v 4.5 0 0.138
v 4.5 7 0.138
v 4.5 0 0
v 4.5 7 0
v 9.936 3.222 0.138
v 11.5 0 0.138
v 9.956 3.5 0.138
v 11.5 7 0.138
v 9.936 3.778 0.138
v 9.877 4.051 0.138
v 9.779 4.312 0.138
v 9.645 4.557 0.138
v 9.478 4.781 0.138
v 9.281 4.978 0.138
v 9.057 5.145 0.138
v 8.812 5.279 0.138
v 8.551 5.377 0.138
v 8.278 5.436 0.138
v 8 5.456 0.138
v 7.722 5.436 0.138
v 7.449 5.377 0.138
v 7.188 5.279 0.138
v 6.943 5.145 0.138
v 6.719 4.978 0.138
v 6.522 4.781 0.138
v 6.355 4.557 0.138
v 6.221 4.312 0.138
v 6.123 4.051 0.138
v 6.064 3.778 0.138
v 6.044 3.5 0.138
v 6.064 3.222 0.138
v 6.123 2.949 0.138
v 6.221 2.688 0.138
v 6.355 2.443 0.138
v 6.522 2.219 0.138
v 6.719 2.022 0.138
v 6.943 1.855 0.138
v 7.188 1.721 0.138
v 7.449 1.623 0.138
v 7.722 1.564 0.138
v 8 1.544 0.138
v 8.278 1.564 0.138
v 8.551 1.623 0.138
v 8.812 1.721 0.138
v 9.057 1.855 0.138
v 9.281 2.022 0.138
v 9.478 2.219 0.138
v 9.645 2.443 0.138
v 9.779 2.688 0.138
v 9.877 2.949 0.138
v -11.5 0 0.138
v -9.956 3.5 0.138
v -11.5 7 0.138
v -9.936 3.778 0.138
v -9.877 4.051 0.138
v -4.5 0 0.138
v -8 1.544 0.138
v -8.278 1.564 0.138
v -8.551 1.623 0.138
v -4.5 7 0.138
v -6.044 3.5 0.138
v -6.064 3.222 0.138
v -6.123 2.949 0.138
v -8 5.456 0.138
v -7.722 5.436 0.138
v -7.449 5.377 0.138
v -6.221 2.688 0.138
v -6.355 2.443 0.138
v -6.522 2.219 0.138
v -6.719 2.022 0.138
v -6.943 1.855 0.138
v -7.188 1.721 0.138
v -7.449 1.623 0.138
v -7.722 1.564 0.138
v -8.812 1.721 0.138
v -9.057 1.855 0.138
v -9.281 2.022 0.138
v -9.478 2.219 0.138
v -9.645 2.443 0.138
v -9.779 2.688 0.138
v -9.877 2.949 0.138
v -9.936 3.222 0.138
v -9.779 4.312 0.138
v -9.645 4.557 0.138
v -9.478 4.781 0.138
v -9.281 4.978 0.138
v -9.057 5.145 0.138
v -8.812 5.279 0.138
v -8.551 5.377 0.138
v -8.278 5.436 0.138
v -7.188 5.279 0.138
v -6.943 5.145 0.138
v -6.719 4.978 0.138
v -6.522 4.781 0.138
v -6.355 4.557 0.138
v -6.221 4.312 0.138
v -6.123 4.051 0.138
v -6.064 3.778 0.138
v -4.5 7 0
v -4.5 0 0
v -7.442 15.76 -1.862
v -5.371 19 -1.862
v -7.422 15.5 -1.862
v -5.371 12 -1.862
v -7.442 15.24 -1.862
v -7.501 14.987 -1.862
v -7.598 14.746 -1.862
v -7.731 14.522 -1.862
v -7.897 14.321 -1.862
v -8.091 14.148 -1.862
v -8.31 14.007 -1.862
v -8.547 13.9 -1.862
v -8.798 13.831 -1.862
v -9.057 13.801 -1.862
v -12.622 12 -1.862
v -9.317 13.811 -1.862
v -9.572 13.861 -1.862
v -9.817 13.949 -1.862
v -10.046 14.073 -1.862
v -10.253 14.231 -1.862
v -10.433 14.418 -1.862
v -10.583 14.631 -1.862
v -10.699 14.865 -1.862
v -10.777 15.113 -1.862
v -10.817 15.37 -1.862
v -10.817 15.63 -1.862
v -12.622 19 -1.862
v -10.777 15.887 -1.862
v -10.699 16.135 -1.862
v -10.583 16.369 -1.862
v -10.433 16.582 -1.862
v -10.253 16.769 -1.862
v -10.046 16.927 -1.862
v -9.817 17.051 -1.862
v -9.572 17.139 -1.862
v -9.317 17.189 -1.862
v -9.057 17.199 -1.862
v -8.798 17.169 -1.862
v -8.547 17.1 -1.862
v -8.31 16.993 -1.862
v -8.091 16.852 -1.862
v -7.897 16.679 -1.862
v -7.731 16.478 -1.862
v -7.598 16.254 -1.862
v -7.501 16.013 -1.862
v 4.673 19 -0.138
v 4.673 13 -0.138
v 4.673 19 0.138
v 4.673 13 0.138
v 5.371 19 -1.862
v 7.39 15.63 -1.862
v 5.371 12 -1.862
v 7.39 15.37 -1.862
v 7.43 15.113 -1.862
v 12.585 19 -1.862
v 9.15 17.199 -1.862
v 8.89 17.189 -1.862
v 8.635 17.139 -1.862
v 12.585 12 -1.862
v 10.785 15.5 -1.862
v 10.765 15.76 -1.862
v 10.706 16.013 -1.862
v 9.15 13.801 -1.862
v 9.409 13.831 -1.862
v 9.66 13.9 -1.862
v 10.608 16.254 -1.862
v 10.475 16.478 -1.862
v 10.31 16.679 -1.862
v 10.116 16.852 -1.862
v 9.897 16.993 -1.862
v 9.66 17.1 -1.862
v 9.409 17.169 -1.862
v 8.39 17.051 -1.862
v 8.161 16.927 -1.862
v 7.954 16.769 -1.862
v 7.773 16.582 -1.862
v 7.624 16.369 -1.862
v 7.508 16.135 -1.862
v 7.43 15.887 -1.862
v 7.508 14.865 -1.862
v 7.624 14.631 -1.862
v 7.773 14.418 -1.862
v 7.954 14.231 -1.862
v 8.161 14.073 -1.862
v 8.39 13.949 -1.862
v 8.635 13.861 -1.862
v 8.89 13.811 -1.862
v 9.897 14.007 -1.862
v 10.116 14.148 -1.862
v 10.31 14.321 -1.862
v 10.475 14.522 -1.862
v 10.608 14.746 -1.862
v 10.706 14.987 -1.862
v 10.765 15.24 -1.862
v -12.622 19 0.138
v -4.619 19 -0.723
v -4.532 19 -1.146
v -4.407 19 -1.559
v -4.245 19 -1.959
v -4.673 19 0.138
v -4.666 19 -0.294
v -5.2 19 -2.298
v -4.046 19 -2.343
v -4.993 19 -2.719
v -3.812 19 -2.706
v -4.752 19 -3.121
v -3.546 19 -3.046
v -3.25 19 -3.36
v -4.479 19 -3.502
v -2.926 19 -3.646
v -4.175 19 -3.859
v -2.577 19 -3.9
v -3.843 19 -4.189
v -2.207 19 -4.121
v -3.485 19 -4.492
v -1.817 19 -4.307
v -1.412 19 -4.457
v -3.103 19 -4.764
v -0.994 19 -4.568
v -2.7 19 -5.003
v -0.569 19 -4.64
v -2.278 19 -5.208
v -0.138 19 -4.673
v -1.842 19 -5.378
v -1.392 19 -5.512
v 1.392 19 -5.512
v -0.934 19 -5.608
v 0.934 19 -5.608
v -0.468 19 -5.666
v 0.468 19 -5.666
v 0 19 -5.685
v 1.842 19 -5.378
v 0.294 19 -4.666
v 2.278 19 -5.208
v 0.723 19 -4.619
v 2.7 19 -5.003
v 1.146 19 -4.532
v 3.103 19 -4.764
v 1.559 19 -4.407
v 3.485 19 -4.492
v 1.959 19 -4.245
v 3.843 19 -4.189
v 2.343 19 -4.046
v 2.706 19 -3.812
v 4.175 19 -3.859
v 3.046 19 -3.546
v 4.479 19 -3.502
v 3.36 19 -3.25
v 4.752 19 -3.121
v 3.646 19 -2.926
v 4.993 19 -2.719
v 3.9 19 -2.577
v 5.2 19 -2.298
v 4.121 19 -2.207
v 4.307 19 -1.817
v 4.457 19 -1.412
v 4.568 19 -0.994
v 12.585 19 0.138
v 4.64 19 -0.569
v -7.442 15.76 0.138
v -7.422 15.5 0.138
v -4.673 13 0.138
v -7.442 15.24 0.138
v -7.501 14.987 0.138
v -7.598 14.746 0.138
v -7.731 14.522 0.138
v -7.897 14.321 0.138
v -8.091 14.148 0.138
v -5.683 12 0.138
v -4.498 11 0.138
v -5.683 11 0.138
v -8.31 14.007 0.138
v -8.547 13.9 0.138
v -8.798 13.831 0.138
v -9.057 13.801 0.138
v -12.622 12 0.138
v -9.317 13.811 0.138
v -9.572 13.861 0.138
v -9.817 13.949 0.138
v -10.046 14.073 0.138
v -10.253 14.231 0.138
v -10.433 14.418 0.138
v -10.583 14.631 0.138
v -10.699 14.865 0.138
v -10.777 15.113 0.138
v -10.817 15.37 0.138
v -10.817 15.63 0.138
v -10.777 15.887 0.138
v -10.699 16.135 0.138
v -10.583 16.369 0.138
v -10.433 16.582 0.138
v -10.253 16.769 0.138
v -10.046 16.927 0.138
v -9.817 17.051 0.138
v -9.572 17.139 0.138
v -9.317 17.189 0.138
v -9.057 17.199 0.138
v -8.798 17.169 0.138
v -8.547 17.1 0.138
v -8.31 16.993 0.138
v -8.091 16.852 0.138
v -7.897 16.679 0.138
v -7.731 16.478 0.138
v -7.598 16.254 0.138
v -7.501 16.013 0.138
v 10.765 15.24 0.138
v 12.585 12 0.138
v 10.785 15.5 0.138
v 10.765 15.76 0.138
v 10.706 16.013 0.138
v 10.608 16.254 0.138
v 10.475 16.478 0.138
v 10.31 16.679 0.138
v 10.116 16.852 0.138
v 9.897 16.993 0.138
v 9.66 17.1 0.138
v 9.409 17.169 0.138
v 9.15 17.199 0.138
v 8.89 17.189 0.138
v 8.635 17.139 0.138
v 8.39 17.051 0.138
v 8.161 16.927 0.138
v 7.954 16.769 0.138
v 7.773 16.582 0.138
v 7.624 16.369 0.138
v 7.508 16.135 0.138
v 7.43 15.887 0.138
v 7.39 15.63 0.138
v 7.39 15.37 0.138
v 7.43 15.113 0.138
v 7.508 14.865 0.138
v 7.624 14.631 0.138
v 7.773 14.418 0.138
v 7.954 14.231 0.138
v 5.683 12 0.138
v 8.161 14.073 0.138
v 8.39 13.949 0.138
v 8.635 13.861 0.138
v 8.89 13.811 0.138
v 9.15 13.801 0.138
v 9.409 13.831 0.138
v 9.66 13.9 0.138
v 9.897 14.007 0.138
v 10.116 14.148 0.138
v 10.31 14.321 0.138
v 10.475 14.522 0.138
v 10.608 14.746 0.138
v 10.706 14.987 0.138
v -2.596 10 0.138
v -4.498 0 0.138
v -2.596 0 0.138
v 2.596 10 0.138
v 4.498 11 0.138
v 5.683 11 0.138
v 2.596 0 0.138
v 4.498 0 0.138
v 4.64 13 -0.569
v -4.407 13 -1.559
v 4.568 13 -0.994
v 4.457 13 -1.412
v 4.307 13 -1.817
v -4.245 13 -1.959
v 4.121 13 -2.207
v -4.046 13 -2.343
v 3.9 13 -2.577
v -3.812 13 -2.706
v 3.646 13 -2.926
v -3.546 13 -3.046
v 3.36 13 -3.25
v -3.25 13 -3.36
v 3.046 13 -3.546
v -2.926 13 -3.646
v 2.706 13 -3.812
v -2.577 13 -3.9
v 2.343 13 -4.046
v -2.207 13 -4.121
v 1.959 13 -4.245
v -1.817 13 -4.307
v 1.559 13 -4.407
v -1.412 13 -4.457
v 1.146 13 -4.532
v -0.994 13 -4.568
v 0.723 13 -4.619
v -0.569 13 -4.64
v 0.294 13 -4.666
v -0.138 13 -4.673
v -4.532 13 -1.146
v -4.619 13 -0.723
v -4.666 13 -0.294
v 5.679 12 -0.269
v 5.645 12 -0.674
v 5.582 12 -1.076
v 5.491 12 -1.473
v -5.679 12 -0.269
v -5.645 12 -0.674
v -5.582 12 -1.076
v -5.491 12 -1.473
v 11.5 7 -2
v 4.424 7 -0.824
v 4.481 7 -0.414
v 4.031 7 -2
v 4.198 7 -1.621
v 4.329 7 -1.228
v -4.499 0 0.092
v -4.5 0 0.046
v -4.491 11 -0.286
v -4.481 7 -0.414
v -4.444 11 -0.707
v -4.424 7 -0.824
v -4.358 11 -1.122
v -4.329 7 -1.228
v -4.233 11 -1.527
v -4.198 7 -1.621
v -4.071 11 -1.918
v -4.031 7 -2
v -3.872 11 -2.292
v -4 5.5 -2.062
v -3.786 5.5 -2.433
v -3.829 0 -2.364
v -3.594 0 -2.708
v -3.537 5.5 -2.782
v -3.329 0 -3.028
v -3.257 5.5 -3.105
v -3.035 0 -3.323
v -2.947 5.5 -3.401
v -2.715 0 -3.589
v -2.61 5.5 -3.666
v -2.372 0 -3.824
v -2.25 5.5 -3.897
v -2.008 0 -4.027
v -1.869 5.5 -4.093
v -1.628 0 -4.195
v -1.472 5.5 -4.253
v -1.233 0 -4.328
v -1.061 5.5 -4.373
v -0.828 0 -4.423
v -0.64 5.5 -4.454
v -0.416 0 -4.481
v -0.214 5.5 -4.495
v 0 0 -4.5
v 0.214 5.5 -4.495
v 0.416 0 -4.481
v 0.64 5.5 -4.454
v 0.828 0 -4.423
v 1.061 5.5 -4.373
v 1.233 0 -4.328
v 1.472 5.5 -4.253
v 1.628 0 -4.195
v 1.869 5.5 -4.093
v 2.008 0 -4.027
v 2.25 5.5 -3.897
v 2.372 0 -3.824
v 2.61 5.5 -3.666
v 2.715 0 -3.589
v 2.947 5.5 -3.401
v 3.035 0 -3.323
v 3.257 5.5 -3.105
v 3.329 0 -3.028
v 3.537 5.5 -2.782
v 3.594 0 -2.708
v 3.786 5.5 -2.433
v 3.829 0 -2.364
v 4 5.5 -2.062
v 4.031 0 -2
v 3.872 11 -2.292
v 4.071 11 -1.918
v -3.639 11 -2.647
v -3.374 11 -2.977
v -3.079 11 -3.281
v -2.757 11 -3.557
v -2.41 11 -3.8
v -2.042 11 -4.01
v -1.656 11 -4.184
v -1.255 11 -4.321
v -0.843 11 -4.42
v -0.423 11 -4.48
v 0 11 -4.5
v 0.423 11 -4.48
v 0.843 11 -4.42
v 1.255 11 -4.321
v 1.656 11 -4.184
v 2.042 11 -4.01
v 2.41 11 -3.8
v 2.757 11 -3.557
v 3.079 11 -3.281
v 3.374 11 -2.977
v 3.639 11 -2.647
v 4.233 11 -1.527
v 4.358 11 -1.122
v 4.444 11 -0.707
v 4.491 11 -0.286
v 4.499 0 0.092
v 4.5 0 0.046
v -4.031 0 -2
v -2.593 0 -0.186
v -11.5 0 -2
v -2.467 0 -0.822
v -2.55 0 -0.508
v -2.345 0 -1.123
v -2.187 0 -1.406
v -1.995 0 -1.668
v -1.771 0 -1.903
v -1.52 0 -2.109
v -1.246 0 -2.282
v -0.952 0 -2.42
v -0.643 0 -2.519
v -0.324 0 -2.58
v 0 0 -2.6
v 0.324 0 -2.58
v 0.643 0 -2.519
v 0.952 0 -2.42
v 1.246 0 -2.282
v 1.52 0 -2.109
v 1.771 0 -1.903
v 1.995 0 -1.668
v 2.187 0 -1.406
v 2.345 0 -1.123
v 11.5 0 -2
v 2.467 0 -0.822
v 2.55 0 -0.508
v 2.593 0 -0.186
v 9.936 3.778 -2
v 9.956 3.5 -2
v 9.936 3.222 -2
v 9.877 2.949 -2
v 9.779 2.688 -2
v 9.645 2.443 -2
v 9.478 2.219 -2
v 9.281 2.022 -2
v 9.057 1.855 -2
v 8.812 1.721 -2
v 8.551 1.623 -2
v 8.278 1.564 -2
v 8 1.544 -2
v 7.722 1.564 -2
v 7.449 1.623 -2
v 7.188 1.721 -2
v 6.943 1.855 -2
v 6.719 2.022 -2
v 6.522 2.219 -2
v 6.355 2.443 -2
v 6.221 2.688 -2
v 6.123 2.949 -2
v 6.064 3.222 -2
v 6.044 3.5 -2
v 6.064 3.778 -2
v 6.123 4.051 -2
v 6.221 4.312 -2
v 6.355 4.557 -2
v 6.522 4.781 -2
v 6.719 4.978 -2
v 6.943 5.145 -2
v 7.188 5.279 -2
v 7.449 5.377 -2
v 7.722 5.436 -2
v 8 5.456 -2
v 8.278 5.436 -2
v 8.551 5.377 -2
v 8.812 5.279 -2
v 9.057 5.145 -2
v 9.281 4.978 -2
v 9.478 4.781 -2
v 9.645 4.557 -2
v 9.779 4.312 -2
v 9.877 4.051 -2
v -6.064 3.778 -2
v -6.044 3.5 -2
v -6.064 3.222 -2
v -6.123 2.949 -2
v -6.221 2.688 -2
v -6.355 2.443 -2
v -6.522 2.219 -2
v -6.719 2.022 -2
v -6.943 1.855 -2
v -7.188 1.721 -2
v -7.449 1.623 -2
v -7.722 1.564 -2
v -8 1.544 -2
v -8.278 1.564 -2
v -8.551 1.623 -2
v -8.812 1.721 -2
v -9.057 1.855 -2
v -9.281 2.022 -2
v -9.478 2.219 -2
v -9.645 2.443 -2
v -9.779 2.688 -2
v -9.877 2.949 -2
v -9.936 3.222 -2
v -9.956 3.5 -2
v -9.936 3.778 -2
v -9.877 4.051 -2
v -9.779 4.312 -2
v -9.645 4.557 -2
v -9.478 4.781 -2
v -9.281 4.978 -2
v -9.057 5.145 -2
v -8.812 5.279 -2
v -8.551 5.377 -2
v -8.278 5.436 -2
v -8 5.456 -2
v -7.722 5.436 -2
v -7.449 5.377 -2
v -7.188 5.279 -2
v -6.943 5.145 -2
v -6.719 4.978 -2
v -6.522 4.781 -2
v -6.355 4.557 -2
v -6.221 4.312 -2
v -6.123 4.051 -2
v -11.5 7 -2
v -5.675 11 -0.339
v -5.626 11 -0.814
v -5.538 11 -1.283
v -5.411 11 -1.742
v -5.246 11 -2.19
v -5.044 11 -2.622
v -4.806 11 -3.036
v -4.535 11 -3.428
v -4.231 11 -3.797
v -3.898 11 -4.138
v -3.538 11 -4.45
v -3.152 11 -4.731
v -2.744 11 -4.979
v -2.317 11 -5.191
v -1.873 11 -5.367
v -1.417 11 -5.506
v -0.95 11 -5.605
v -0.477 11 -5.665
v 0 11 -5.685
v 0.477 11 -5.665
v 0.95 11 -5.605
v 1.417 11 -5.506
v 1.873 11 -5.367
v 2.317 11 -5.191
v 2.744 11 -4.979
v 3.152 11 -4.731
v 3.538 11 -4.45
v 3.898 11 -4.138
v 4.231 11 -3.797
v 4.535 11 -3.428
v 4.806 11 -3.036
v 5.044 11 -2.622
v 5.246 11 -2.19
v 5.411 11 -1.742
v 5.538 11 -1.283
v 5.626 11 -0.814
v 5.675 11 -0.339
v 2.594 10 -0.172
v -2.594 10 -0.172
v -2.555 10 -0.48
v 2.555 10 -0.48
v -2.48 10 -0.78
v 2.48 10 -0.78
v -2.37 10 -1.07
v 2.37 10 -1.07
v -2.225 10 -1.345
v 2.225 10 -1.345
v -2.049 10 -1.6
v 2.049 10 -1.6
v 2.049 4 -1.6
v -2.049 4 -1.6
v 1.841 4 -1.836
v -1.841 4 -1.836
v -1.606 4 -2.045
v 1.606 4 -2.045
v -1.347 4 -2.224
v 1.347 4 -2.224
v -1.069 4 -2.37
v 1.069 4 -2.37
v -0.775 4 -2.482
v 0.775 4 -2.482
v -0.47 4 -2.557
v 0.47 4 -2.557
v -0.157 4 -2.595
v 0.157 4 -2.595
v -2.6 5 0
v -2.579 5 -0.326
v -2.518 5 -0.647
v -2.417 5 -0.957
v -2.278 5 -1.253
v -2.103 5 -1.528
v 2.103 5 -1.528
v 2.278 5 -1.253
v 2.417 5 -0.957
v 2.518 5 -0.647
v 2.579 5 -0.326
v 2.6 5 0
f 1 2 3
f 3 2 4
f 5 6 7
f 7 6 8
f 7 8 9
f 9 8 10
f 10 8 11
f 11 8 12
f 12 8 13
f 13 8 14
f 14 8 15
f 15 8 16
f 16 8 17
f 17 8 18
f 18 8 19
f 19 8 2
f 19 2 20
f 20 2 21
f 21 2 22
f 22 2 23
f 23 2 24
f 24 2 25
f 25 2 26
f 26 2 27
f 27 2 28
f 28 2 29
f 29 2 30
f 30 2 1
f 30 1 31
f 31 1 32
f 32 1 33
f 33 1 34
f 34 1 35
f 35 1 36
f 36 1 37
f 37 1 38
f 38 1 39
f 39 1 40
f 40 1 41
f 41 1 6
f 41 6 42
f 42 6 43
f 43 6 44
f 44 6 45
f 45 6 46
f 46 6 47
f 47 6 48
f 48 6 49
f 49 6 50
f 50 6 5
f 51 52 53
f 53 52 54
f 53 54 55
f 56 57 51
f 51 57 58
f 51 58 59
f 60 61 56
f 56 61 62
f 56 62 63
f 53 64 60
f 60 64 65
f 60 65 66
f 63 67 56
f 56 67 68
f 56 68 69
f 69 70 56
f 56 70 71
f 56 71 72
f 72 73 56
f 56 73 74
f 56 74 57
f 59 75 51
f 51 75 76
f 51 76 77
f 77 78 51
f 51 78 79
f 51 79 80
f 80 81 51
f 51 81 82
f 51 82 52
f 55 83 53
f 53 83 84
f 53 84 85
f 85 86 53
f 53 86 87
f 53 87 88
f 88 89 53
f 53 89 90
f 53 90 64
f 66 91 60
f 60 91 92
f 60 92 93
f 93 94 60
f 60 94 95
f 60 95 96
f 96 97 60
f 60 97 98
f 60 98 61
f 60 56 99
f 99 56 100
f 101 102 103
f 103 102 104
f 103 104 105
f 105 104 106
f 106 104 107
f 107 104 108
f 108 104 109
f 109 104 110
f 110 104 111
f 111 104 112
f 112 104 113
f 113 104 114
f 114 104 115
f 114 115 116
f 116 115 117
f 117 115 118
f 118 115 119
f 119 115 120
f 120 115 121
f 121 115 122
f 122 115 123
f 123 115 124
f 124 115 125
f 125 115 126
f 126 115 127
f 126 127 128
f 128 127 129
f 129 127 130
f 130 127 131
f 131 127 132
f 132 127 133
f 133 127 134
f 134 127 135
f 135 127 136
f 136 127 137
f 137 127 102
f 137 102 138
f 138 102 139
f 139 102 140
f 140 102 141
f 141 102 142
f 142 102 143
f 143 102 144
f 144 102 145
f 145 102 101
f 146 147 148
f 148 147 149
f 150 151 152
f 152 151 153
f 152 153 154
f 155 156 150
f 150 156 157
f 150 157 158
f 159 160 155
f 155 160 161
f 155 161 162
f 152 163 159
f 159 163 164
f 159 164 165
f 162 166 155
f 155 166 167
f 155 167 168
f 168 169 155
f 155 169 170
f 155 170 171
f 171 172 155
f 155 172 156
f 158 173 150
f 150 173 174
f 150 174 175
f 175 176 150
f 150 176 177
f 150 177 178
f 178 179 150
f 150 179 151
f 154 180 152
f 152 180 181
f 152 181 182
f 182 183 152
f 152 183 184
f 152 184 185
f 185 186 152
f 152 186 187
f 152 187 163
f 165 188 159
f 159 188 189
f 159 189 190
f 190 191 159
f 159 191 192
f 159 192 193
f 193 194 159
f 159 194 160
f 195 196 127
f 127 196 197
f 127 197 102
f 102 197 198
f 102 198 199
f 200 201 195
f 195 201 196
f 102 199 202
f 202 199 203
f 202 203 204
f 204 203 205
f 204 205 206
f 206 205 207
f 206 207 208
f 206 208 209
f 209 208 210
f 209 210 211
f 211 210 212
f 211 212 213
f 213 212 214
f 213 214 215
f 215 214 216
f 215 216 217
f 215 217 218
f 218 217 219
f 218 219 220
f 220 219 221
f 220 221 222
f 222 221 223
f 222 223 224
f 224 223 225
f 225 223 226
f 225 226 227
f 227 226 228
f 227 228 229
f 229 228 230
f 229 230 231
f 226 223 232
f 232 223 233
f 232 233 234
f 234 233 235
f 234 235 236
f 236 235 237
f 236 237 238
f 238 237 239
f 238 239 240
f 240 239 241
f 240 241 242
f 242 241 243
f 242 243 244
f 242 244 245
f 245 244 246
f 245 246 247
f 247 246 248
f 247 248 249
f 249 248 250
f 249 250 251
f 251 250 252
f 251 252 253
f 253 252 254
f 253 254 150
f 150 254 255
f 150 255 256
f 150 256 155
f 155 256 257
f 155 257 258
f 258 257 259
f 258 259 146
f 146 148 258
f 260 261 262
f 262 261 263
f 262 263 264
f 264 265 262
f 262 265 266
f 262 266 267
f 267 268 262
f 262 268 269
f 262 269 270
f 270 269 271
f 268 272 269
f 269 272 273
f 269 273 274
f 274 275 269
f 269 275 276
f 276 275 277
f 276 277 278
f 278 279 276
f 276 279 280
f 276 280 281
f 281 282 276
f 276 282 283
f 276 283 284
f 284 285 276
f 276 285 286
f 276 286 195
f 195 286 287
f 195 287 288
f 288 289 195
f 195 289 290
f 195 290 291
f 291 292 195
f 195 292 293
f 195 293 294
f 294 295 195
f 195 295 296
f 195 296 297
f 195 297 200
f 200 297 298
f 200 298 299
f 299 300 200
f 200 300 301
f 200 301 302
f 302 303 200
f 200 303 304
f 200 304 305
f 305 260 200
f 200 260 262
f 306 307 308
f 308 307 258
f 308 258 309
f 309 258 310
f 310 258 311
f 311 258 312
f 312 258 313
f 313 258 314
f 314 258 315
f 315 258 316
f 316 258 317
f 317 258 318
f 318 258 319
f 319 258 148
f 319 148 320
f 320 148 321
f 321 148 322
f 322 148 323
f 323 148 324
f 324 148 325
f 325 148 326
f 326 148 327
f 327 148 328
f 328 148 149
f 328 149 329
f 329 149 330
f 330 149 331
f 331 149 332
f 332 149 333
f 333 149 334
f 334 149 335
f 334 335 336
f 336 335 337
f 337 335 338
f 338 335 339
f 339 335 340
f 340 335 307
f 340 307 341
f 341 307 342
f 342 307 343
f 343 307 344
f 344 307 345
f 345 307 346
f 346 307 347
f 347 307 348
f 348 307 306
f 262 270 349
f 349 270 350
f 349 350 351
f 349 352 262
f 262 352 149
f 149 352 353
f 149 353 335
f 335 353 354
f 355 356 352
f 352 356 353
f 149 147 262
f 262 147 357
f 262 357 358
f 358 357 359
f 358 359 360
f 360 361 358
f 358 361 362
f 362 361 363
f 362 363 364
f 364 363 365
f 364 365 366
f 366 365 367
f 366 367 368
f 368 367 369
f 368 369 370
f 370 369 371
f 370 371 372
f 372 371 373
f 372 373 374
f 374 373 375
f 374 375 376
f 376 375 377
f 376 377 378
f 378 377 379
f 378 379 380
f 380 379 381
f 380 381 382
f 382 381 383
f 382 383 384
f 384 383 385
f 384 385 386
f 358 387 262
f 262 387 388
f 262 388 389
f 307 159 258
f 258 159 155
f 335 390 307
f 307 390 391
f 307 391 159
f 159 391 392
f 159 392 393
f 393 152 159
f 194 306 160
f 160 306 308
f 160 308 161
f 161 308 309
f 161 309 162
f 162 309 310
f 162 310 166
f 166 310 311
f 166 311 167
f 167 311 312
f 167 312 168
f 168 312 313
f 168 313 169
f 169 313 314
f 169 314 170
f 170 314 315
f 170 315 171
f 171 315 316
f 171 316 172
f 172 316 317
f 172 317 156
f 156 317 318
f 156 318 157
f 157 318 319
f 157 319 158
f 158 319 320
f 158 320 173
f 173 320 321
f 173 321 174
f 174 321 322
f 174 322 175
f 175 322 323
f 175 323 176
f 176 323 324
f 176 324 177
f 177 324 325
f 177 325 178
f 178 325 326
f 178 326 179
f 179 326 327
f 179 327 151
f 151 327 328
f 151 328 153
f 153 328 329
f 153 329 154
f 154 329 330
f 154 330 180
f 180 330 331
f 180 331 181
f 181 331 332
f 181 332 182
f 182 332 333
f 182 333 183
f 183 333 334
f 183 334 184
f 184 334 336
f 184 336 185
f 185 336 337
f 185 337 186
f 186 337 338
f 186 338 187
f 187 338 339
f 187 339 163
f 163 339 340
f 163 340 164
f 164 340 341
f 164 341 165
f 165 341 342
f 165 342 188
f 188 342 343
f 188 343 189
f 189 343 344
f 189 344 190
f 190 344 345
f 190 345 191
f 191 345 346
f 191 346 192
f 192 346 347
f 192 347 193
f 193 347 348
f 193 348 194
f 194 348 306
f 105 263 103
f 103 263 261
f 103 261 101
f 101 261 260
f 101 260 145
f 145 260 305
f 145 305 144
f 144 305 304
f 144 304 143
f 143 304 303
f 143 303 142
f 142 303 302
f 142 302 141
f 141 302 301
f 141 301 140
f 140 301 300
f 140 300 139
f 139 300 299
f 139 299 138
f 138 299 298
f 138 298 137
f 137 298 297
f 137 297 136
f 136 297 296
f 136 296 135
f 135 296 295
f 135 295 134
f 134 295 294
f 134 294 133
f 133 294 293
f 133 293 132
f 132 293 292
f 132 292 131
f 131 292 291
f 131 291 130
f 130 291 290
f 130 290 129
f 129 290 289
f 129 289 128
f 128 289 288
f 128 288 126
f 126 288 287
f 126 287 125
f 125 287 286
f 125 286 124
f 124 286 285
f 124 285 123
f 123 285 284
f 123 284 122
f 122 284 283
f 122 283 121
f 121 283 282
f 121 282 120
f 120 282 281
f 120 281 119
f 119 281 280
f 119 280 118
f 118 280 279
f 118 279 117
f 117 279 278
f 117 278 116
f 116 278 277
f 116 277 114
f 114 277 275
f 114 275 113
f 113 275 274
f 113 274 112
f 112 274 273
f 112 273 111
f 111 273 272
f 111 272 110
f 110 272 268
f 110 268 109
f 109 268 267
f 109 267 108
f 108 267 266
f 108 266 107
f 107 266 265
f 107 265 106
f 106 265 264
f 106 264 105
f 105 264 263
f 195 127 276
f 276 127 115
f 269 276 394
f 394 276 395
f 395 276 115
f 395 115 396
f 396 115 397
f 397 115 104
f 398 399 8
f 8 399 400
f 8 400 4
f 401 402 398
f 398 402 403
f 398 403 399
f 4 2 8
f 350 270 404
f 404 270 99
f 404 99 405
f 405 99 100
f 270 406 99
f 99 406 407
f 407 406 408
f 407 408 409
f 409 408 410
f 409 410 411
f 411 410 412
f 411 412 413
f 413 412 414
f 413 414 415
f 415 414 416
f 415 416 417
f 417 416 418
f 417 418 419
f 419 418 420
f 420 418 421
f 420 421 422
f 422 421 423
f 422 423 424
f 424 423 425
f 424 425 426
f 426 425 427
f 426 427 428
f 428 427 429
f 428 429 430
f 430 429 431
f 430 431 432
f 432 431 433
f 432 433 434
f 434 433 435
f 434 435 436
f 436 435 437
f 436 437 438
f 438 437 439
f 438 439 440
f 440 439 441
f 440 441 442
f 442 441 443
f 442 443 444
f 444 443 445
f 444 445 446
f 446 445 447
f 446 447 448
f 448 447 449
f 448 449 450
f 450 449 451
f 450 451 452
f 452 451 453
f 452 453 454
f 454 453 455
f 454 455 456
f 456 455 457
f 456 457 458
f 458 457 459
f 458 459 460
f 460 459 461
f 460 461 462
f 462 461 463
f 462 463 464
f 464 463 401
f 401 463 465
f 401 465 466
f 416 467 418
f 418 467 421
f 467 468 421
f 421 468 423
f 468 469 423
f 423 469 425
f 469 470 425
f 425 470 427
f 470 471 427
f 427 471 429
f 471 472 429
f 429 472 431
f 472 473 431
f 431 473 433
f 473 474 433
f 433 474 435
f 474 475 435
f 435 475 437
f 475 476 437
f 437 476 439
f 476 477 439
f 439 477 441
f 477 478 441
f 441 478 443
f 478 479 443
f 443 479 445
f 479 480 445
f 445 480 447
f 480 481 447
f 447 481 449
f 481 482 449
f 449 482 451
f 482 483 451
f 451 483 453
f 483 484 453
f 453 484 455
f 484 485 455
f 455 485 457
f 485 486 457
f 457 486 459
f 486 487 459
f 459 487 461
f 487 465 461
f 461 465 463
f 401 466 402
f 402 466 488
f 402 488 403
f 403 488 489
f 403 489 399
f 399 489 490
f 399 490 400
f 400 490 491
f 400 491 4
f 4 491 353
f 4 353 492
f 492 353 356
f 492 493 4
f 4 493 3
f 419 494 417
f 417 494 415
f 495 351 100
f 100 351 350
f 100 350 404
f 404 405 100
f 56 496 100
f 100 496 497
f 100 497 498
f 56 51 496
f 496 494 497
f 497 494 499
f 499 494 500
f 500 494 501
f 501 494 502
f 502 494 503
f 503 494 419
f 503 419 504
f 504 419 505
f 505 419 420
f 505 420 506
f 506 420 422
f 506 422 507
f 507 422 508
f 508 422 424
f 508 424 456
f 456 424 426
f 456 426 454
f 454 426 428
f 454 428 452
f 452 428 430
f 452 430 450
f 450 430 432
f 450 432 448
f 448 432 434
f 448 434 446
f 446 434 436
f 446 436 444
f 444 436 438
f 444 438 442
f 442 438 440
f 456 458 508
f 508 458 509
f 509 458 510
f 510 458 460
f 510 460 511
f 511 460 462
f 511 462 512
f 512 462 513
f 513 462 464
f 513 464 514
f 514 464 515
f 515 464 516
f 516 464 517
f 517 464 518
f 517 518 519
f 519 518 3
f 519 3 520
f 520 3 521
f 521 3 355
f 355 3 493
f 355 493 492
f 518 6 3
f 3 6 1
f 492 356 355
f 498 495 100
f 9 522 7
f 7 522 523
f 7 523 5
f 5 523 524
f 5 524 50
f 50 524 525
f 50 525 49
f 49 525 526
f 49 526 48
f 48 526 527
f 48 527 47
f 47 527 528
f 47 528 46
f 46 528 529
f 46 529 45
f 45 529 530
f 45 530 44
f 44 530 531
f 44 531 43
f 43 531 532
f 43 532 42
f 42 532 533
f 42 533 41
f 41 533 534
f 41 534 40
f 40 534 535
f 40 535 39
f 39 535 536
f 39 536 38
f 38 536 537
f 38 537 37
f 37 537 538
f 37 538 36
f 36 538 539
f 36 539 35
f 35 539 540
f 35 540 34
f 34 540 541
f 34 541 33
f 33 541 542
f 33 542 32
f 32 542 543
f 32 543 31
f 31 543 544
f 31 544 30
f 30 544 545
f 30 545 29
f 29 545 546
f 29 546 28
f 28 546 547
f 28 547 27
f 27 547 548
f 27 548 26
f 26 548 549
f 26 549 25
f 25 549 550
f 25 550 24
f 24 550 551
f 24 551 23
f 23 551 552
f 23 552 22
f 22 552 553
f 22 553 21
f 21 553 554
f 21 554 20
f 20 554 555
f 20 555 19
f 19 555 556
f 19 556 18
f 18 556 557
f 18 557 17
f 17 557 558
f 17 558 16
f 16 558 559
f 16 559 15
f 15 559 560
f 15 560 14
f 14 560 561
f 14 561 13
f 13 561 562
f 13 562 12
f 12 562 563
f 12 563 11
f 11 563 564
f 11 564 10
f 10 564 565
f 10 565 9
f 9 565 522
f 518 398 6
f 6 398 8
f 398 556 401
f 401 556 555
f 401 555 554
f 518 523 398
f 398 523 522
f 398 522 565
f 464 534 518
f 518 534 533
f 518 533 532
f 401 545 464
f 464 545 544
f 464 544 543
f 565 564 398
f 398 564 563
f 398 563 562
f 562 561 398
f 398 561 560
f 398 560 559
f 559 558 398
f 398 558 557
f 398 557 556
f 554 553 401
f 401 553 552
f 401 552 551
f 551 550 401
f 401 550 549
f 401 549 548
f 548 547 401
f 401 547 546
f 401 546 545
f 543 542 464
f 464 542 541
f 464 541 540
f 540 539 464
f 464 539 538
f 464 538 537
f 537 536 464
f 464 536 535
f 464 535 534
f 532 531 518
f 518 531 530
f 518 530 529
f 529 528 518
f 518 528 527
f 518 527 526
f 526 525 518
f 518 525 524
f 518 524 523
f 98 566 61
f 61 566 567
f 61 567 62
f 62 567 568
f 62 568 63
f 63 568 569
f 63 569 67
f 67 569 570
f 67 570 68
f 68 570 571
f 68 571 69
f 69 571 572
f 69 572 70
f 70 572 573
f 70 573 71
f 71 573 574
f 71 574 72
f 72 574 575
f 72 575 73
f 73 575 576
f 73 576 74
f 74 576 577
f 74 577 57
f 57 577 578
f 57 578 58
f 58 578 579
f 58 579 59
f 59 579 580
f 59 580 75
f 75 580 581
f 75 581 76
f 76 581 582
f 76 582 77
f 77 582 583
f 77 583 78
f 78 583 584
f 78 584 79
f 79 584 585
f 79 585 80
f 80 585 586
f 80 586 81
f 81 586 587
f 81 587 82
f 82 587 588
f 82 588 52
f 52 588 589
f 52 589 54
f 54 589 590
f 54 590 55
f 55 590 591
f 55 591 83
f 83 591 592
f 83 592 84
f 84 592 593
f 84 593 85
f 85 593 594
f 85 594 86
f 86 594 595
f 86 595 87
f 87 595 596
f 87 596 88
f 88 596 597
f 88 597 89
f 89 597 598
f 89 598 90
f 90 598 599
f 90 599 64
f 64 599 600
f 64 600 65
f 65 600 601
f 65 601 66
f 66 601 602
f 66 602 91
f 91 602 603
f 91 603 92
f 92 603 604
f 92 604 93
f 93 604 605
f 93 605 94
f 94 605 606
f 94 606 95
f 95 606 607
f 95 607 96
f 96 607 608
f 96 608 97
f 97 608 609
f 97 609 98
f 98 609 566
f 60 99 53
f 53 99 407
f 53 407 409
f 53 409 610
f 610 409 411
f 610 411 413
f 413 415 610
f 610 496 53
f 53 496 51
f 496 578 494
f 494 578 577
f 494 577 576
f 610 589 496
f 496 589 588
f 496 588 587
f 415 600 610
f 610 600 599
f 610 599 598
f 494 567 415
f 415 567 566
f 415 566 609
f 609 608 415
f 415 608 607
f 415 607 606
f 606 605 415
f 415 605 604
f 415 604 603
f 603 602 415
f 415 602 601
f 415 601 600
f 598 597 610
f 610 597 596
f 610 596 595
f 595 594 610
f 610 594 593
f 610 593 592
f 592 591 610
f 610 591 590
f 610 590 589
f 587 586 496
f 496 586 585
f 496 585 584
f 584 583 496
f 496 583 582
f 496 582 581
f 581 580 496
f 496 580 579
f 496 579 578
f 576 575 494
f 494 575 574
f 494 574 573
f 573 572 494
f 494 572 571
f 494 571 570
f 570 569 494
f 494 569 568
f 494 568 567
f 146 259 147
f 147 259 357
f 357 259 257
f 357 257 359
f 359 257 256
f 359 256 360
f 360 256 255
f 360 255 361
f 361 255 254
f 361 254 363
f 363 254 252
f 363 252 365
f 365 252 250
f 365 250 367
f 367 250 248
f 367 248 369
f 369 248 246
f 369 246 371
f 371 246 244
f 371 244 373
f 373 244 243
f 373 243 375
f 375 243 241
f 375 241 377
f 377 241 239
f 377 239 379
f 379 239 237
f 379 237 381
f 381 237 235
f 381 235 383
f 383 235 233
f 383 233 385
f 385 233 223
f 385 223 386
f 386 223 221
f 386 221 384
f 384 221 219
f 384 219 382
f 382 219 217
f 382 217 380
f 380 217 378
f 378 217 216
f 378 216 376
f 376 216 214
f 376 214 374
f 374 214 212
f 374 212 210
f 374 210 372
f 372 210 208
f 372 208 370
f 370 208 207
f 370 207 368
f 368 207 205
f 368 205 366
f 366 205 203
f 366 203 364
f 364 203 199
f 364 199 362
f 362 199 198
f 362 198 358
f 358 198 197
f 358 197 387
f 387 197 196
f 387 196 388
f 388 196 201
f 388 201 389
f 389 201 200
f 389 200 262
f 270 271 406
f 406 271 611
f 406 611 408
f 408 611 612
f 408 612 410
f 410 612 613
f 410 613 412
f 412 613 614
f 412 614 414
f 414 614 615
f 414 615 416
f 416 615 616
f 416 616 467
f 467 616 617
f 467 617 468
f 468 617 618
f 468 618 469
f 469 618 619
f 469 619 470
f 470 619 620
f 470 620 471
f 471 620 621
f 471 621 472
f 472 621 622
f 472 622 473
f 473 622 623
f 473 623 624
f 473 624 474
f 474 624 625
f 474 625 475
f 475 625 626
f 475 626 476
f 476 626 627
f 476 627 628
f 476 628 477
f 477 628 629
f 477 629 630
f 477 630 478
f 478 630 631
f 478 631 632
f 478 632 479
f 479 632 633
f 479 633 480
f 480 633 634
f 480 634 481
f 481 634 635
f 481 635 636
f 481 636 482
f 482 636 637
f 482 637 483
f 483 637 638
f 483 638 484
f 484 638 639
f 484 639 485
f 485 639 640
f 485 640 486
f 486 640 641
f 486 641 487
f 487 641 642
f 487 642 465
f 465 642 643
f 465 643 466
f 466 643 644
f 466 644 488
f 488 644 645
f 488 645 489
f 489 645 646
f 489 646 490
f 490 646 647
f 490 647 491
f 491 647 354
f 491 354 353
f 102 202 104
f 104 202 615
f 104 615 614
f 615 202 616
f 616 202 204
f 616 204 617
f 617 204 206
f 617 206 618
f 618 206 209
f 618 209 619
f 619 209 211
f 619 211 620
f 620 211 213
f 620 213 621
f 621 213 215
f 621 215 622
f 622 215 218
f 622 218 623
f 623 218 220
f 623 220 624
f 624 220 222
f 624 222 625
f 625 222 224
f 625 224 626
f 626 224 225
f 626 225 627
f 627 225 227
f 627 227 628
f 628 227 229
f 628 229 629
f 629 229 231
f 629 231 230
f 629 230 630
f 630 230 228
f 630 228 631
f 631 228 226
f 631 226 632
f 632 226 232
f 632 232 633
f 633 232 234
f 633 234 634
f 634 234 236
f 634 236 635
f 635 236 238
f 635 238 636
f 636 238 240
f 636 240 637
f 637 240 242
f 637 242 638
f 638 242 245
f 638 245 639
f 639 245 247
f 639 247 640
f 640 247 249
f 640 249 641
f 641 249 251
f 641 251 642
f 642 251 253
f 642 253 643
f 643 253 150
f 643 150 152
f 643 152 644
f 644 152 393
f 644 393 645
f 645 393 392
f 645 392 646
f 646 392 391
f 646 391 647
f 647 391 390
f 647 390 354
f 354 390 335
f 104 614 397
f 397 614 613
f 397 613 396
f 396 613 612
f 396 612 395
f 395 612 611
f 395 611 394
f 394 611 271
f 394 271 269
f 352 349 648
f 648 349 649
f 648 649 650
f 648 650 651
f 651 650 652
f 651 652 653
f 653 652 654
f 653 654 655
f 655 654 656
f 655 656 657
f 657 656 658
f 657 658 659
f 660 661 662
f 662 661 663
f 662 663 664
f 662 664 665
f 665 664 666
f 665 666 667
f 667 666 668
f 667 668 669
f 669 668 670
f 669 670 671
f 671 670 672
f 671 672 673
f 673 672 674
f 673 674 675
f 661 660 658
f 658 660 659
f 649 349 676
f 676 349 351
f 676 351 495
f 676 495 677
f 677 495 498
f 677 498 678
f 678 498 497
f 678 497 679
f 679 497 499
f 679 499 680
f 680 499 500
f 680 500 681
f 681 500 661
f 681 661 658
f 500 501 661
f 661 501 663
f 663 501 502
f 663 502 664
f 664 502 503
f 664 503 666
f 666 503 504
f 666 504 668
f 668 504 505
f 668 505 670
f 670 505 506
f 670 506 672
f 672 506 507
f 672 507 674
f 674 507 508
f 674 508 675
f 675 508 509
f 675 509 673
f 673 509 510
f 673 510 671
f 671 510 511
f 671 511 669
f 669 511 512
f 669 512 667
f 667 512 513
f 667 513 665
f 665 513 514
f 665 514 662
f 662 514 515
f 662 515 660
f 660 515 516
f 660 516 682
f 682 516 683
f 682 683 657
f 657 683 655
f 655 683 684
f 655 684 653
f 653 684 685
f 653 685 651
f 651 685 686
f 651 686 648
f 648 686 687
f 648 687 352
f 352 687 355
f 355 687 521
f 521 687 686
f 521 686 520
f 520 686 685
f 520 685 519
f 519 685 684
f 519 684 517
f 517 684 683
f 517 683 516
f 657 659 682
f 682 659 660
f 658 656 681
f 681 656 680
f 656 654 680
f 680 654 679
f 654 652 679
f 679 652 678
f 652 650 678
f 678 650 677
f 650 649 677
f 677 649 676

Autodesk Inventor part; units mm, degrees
sketch "Sketch3" plane through (0, 0, 0) normal (0, 1, 0) x (-1, 0, 0)
  circle A0 centre (0, 0) radius 4.5
  circle A1 centre (0, 0) radius 2.6
  dimension "d10" = 9
  dimension "d11" = 5.2
extrude "Extrusion2" add sketch "Sketch3" along normal blind 4
sketch "Sketch4" plane through (0, 4, 0) normal (0, 1, 0) x (1, 0, 0)
  circle A0 centre (0, 0) radius 2.6 projected
  line L0 (0, -2.6) -> (0, -1.6)
  line L1 (0, -1.6) -> (0, 2.6)
  line L2 (0, -1.6) -> (-2.0494, -1.6)
  line L3 (0, -1.6) -> (2.0494, -1.6)
  line L4 (0, 2.6) -> (0, 2.6)
  line L5 (0, 2.6) -> (0, 2.6)
  circle A1 centre (0, 0) radius 4.5 projected
  circle A2 centre (0, 0) radius 2.6 projected
  line L6 (0, 2.6) -> (0, 1.6)
  line L7 (0, 1.6) -> (2.0494, 1.6)
  line L8 (0, 1.6) -> (-2.0494, 1.6)
  point P0 (2.0494, 1.6)
  point P1 (-2.0494, 1.6)
  dimension "d14" = 1
  dimension "d20" = 1
extrude "Extrusion3" add sketch "Sketch4" along normal blind 6 contours L7 L1 A0 | A0 L0 L3 | L1 L8 A0 | A0 L2 L0 | A1
sketch "Sketch5" plane through (0, 10, 0) normal (0, 1, 0) x (1, 0, 0)
  circle A0 centre (0, 0) radius 4.5 projected
extrude "Extrusion4" add sketch "Sketch5" along normal blind 1
sketch "Sketch11" plane through (0, 0, 0) normal (0, -1, 0) x (1, 0, 0)
  point P0 (0, 0)
sketch "Sketch12" plane through (0, 11, 0) normal (0, 1, 0) x (1, 0, 0)
  circle A0 centre (0, 0) radius 4.675
  circle A1 centre (0, 0) radius 5.685
  dimension "d59" = 9.35
  dimension "d60" = 11.37
extrude "Extrusion11" add sketch "Sketch12" along normal blind 2 contours A0 | A1
extrude "Extrusion12" add sketch "Sketch12" along normal blind 8
sketch "Sketch14" plane through (0, 19, 0) normal (0, 1, 0) x (1, 0, 0)
  point P0 (0, 0)
sketch "Sketch15" plane through (0, 19, 0) normal (0, 1, 0) x (1, 0, 0)
  circle A0 centre (0, 0) radius 5.685 projected
  line L0 (5.685, 0) -> (5.585, 0)
  line L1 (5.585, 0) -> (5.585, -1.0616)
  circle A1 centre (0, 0) radius 5.685 projected
  line L2 (5.585, 0) -> (5.585, 1.0616)
  line L3 (5.585, 1.0616) -> (12.585, 1.0616)
  line L4 (12.585, 1.0616) -> (12.585, -1.3379)
  line L5 (12.585, -1.3379) -> (5.585, -1.3379)
  line L6 (5.585, -1.3379) -> (5.585, 1.0616)
  line L7 (-5.6218, 0.8451) -> (-5.6218, -0.8451)
  line L8 (-5.6218, 0.8451) -> (-12.6218, 0.8451)
  line L9 (-12.6218, 0.8451) -> (-12.6218, -0.8451)
  line L10 (-12.6218, -0.8451) -> (-5.6218, -0.8451)
  line L11 (-5.6218, -0.8451) -> (-5.6218, 0.8451)
  point P0 (-5.6218, -0.8451)
  point P1 (8.9, -1.3379)
  point P2 (5.585, -1.0616)
  dimension "d72" = 0.1
  dimension "d73" = 7
  dimension "d74" = 7
ref_plane "Work Plane3" through (-5.6218, 26, -0.8451) normal (0, 0, -1) x (-1, 0, 0)
sketch "Sketch17" plane through (-5.6218, 26, -0.8451) normal (0, 0, -1) x (-1, 0, 0)
  line L0 (7, 0) -> (7, -7) projected
  line L1 (-10.3068, 0) -> (7, 0) projected
  line L2 (7, -3.5) -> (3.5, -3.5)
  line L3 (-18.2068, 0) -> (-18.2068, -7) projected
  line L4 (-18.2068, -3.5) -> (-14.7068, -3.5)
  point P0 (-5.6218, -26)
  dimension "d81" = 3.5
  dimension "d82" = 3.5
ref_plane "Work Plane2" through (7.7, 26, 0) normal (0, 0, 1) x (1, 0, 0)
sketch "Sketch19" plane through (7.7, 26, 0) normal (0, 0, 1) x (1, 0, 0)
  line L0 (-12.2, -26) -> (-12.2, -15) projected
  line L1 (-12.2, -26) -> (-19.2, -26)
  line L2 (-19.2, -26) -> (-19.2, -19)
  line L3 (-19.2, -19) -> (-12.2, -19)
  line L4 (-12.2, -19) -> (-12.2, -26)
  line L5 (-3.2, -15) -> (-3.2, -26) projected
  line L6 (-3.2, -26) -> (3.8, -26)
  line L7 (3.8, -26) -> (3.8, -19)
  line L8 (3.8, -19) -> (-3.2, -19)
  line L9 (-3.2, -19) -> (-3.2, -26)
  circle A0 centre (0.3, -22.5) radius 1.9558
  circle A1 centre (-15.7, -22.5) radius 1.9558
  point P0 (-7.7, -26)
  point P1 (-3.2, -19)
  dimension "d93" = 7
  dimension "d94" = 7
  dimension "d95" = 7
  dimension "d96" = 7
  dimension "d97" = 3.9116
  dimension "d98" = 3.9116
extrude "Extrusion17" add sketch "Sketch19" against normal blind 2
ref_plane "Work Plane1" through (7.7, 26, 0) normal (0, 0, 1) x (1, 0, 0)
sketch "Sketch20" plane through (7.7, 26, 0) normal (0, 0, 1) x (1, 0, 0)
  line L0 (-12.2, -19) -> (-12.2, -15) projected
  line L1 (-10.3, -16) -> (-10.3, -26) projected
  line L2 (-12.2, -19) -> (-10.3, -19)
  line L3 (-10.3, -19) -> (-10.3, -26)
  line L4 (-10.3, -26) -> (-12.2, -26)
  line L5 (-12.2, -26) -> (-12.2, -19)
  line L6 (-3.2, -26) -> (-5.1, -26) projected
  line L7 (-3.1953, -19) -> (-5.1, -19)
  line L8 (-5.1, -19) -> (-5.1, -26)
  line L9 (-5.1, -26) -> (-3.1953, -26)
  line L10 (-3.1953, -26) -> (-3.1953, -19)
  point P0 (-7.7, -26)
extrude "Extrusion18" add sketch "Sketch20" against normal blind 2
extrude "Extrusion20" add sketch "Sketch15" against normal blind 7 contours A0 L3 L4 L5 L6 | A0 L10 L9 L8
hole "Hole2" at (9.085, 22.5, -0.8451) at (-9.1218, 22.5, -0.8451) direction (0, 0, 1) diameter 3.4 end through all clearance for "Flat Head Machine Screw" size "M3" standard "Ansi Metric M Profile"
sketch "Sketch22" plane through (7.7, 26, 0) normal (0, 0, 1) x (1, 0, 0)
  point P0 (-7.7, -26)
sketch "Sketch23" plane through (5.585, 19, 1.3379) normal (0, 0, 1) x (1, 0, 0)
  point P0 (-5.585, -19)
sketch "Sketch24" plane through (12.585, 19, -1.0616) normal (0, 0, -1) x (-1, 0, 0)
  line L0 (0, 0) -> (0, -7) projected
  line L1 (0, 0) -> (7, 0) projected
  line L2 (0, -3.5) -> (3.5, -3.5)
  line L3 (3.5, -3.5) -> (3.5, 0)
  line L4 (3.5, 0) -> (0, 0)
  line L5 (0, 0) -> (0, -3.5)
  line L6 (18.2068, 0) -> (25.2068, 0) projected
  line L7 (25.2068, 0) -> (21.7068, 0)
  line L8 (21.7068, 0) -> (21.7068, -3.5)
  line L9 (21.7068, -3.5) -> (25.2068, -3.5)
  line L10 (25.2068, -3.5) -> (25.2068, 0)
  point P0 (12.585, -19)
hole "Hole3" at (9.085, 15.5, -1.0616) at (-9.1218, 15.5, -1.0616) direction (0, 0, 1) diameter 3.4 end through all clearance for "Flat Head Machine Screw" size "M3" standard "Ansi Metric M Profile"
sketch "Sketch21" plane through (0, 19, 0) normal (0, 1, 0) x (1, 0, 0)
  line L0 (12.585, 1.0616) -> (12.585, -1.3379) projected
  line L1 (12.585, -0.1382) -> (-17.8482, -0.1382)
  line L2 (-17.8482, -0.1382) -> (-17.8482, -11.8989)
  line L3 (-17.8482, -11.8989) -> (12.585, -11.8989)
  line L4 (12.585, -11.8989) -> (12.585, -0.1382)
  point P0 (0, 0)
extrude "Extrusion19" cut sketch "Sketch21" against normal blind 76.2
sketch "Sketch25" plane through (-12.6218, 19, 0.1382) normal (0, 0, 1) x (1, 0, 0)
  line L0 (7.9489, -6) -> (17.2948, -6) projected
  line L1 (17.2948, -6) -> (17.2948, -7)
  line L2 (25.2068, 0) -> (25.2068, -7) projected
  line L3 (17.2948, -7) -> (25.2068, -7)
  line L4 (25.2068, -7) -> (25.2068, 0)
  line L5 (25.2068, 0) -> (17.2948, 0)
  line L6 (17.2948, 0) -> (17.2948, -7)
  line L7 (7, 0) -> (0, 0) projected
  line L8 (7.9389, -7) -> (0, -7)
  line L9 (0, -7) -> (0, 0)
  line L10 (0, 0) -> (7.9389, 0)
  line L11 (7.9389, 0) -> (7.9389, -7)
  circle A0 centre (3.5, -3.5) radius 1.7 projected
  circle A1 centre (21.7068, -3.5) radius 1.7 projected
  point P0 (12.6218, -19)
extrude "Extrusion21" add sketch "Sketch25" against normal blind 2
sketch "Sketch26" plane through (7.7, 26, 0) normal (0, 0, 1) x (1, 0, 0)
  line L0 (-19.2, -26) -> (-12.2, -26) projected
  line L1 (-3.2, -26) -> (-3.2, -19) projected
  line L2 (-12.2, -19) -> (-19.2, -19) projected
  line L3 (-19.2, -19) -> (-19.2, -26) projected
  circle A0 centre (-15.7, -22.5) radius 1.9558 projected
  circle A1 centre (0.3, -22.5) radius 1.9558 projected
  line L4 (3.8, -26) -> (3.8, -19) projected
  line L5 (3.8, -19) -> (-3.2, -19) projected
  line L6 (-3.2, -26) -> (-3.2, -19) projected
  line L7 (-19.2, -26) -> (-12.2, -26) projected
  line L8 (-12.2, -26) -> (-12.2, -19) projected
  line L9 (-12.2, -19) -> (-19.2, -19) projected
  line L10 (-19.2, -19) -> (-19.2, -26) projected
  line L11 (-3.2, -26) -> (3.8, -26) projected
  line L12 (-12.2, -26) -> (-12.2, -19) projected
  line L13 (-3.2, -26) -> (3.8, -26) projected
  line L14 (3.8, -26) -> (3.8, -19) projected
  line L15 (3.8, -19) -> (-3.2, -19) projected
  point P0 (-7.7, -26)
extrude "Extrusion22" add sketch "Sketch26" along normal up to surface (0.1382 mm away)
properties part number "4"
